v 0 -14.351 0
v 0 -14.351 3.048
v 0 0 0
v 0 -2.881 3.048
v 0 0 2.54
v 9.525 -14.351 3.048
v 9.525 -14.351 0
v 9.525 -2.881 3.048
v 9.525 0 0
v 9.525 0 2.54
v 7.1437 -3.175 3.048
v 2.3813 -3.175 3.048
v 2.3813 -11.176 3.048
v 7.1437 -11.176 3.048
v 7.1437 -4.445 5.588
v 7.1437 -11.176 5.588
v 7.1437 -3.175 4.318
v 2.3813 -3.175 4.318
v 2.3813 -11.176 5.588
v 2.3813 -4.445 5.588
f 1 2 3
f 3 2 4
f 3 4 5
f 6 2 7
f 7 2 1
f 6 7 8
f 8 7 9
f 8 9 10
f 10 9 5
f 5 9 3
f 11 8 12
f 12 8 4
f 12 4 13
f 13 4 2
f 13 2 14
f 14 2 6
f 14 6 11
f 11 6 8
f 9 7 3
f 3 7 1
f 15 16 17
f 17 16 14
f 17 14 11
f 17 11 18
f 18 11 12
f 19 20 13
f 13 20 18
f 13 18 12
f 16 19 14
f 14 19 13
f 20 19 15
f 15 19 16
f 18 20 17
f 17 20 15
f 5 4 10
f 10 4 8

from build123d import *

# Parameters (mm, degrees)
SKETCH1_W           = 9.525
SKETCH1_H           = 14.351
BOSS_EXTRUDE1_DEPTH = 3.048
SKETCH2_W           = 4.7625
SKETCH2_H           = 8.001
BOSS_EXTRUDE2_DEPTH = 2.54
CHAMFER1_SIZE       = 1.27
CHAMFER2_SIZE       = 0.508
CHAMFER2_SIZE2      = 2.881011164


with BuildPart() as part:
    # Sketch1 → Boss-Extrude1 (new body)
    with BuildSketch(Plane.XY):
        with Locations((4.7625, -7.1755)):
            Rectangle(SKETCH1_W, SKETCH1_H)
    extrude(amount=BOSS_EXTRUDE1_DEPTH)

    # Sketch2 → Boss-Extrude2 (add)
    with BuildSketch(Plane.XY.offset(3.048)):
        with Locations((4.7625, -7.1755)):
            Rectangle(SKETCH2_W, SKETCH2_H)
    extrude(amount=BOSS_EXTRUDE2_DEPTH)

    # Chamfer1
    chamfer1_edges = [part.edges().sort_by_distance(p)[0] for p in [
        (4.7625, -3.175, 5.588),
    ]]
    chamfer(chamfer1_edges, length=CHAMFER1_SIZE)

    # Chamfer2
    chamfer2_edges = [part.edges().sort_by_distance(p)[0] for p in [
        (4.7625, 0, 3.048),
    ]]
    chamfer2_side = [part.faces().sort_by_distance(p)[0] for p in [
        (4.7625, 0, 1.524),
    ]]
    chamfer(chamfer2_edges, length=CHAMFER2_SIZE, length2=CHAMFER2_SIZE2, reference=chamfer2_side[0])


solid = part.part
